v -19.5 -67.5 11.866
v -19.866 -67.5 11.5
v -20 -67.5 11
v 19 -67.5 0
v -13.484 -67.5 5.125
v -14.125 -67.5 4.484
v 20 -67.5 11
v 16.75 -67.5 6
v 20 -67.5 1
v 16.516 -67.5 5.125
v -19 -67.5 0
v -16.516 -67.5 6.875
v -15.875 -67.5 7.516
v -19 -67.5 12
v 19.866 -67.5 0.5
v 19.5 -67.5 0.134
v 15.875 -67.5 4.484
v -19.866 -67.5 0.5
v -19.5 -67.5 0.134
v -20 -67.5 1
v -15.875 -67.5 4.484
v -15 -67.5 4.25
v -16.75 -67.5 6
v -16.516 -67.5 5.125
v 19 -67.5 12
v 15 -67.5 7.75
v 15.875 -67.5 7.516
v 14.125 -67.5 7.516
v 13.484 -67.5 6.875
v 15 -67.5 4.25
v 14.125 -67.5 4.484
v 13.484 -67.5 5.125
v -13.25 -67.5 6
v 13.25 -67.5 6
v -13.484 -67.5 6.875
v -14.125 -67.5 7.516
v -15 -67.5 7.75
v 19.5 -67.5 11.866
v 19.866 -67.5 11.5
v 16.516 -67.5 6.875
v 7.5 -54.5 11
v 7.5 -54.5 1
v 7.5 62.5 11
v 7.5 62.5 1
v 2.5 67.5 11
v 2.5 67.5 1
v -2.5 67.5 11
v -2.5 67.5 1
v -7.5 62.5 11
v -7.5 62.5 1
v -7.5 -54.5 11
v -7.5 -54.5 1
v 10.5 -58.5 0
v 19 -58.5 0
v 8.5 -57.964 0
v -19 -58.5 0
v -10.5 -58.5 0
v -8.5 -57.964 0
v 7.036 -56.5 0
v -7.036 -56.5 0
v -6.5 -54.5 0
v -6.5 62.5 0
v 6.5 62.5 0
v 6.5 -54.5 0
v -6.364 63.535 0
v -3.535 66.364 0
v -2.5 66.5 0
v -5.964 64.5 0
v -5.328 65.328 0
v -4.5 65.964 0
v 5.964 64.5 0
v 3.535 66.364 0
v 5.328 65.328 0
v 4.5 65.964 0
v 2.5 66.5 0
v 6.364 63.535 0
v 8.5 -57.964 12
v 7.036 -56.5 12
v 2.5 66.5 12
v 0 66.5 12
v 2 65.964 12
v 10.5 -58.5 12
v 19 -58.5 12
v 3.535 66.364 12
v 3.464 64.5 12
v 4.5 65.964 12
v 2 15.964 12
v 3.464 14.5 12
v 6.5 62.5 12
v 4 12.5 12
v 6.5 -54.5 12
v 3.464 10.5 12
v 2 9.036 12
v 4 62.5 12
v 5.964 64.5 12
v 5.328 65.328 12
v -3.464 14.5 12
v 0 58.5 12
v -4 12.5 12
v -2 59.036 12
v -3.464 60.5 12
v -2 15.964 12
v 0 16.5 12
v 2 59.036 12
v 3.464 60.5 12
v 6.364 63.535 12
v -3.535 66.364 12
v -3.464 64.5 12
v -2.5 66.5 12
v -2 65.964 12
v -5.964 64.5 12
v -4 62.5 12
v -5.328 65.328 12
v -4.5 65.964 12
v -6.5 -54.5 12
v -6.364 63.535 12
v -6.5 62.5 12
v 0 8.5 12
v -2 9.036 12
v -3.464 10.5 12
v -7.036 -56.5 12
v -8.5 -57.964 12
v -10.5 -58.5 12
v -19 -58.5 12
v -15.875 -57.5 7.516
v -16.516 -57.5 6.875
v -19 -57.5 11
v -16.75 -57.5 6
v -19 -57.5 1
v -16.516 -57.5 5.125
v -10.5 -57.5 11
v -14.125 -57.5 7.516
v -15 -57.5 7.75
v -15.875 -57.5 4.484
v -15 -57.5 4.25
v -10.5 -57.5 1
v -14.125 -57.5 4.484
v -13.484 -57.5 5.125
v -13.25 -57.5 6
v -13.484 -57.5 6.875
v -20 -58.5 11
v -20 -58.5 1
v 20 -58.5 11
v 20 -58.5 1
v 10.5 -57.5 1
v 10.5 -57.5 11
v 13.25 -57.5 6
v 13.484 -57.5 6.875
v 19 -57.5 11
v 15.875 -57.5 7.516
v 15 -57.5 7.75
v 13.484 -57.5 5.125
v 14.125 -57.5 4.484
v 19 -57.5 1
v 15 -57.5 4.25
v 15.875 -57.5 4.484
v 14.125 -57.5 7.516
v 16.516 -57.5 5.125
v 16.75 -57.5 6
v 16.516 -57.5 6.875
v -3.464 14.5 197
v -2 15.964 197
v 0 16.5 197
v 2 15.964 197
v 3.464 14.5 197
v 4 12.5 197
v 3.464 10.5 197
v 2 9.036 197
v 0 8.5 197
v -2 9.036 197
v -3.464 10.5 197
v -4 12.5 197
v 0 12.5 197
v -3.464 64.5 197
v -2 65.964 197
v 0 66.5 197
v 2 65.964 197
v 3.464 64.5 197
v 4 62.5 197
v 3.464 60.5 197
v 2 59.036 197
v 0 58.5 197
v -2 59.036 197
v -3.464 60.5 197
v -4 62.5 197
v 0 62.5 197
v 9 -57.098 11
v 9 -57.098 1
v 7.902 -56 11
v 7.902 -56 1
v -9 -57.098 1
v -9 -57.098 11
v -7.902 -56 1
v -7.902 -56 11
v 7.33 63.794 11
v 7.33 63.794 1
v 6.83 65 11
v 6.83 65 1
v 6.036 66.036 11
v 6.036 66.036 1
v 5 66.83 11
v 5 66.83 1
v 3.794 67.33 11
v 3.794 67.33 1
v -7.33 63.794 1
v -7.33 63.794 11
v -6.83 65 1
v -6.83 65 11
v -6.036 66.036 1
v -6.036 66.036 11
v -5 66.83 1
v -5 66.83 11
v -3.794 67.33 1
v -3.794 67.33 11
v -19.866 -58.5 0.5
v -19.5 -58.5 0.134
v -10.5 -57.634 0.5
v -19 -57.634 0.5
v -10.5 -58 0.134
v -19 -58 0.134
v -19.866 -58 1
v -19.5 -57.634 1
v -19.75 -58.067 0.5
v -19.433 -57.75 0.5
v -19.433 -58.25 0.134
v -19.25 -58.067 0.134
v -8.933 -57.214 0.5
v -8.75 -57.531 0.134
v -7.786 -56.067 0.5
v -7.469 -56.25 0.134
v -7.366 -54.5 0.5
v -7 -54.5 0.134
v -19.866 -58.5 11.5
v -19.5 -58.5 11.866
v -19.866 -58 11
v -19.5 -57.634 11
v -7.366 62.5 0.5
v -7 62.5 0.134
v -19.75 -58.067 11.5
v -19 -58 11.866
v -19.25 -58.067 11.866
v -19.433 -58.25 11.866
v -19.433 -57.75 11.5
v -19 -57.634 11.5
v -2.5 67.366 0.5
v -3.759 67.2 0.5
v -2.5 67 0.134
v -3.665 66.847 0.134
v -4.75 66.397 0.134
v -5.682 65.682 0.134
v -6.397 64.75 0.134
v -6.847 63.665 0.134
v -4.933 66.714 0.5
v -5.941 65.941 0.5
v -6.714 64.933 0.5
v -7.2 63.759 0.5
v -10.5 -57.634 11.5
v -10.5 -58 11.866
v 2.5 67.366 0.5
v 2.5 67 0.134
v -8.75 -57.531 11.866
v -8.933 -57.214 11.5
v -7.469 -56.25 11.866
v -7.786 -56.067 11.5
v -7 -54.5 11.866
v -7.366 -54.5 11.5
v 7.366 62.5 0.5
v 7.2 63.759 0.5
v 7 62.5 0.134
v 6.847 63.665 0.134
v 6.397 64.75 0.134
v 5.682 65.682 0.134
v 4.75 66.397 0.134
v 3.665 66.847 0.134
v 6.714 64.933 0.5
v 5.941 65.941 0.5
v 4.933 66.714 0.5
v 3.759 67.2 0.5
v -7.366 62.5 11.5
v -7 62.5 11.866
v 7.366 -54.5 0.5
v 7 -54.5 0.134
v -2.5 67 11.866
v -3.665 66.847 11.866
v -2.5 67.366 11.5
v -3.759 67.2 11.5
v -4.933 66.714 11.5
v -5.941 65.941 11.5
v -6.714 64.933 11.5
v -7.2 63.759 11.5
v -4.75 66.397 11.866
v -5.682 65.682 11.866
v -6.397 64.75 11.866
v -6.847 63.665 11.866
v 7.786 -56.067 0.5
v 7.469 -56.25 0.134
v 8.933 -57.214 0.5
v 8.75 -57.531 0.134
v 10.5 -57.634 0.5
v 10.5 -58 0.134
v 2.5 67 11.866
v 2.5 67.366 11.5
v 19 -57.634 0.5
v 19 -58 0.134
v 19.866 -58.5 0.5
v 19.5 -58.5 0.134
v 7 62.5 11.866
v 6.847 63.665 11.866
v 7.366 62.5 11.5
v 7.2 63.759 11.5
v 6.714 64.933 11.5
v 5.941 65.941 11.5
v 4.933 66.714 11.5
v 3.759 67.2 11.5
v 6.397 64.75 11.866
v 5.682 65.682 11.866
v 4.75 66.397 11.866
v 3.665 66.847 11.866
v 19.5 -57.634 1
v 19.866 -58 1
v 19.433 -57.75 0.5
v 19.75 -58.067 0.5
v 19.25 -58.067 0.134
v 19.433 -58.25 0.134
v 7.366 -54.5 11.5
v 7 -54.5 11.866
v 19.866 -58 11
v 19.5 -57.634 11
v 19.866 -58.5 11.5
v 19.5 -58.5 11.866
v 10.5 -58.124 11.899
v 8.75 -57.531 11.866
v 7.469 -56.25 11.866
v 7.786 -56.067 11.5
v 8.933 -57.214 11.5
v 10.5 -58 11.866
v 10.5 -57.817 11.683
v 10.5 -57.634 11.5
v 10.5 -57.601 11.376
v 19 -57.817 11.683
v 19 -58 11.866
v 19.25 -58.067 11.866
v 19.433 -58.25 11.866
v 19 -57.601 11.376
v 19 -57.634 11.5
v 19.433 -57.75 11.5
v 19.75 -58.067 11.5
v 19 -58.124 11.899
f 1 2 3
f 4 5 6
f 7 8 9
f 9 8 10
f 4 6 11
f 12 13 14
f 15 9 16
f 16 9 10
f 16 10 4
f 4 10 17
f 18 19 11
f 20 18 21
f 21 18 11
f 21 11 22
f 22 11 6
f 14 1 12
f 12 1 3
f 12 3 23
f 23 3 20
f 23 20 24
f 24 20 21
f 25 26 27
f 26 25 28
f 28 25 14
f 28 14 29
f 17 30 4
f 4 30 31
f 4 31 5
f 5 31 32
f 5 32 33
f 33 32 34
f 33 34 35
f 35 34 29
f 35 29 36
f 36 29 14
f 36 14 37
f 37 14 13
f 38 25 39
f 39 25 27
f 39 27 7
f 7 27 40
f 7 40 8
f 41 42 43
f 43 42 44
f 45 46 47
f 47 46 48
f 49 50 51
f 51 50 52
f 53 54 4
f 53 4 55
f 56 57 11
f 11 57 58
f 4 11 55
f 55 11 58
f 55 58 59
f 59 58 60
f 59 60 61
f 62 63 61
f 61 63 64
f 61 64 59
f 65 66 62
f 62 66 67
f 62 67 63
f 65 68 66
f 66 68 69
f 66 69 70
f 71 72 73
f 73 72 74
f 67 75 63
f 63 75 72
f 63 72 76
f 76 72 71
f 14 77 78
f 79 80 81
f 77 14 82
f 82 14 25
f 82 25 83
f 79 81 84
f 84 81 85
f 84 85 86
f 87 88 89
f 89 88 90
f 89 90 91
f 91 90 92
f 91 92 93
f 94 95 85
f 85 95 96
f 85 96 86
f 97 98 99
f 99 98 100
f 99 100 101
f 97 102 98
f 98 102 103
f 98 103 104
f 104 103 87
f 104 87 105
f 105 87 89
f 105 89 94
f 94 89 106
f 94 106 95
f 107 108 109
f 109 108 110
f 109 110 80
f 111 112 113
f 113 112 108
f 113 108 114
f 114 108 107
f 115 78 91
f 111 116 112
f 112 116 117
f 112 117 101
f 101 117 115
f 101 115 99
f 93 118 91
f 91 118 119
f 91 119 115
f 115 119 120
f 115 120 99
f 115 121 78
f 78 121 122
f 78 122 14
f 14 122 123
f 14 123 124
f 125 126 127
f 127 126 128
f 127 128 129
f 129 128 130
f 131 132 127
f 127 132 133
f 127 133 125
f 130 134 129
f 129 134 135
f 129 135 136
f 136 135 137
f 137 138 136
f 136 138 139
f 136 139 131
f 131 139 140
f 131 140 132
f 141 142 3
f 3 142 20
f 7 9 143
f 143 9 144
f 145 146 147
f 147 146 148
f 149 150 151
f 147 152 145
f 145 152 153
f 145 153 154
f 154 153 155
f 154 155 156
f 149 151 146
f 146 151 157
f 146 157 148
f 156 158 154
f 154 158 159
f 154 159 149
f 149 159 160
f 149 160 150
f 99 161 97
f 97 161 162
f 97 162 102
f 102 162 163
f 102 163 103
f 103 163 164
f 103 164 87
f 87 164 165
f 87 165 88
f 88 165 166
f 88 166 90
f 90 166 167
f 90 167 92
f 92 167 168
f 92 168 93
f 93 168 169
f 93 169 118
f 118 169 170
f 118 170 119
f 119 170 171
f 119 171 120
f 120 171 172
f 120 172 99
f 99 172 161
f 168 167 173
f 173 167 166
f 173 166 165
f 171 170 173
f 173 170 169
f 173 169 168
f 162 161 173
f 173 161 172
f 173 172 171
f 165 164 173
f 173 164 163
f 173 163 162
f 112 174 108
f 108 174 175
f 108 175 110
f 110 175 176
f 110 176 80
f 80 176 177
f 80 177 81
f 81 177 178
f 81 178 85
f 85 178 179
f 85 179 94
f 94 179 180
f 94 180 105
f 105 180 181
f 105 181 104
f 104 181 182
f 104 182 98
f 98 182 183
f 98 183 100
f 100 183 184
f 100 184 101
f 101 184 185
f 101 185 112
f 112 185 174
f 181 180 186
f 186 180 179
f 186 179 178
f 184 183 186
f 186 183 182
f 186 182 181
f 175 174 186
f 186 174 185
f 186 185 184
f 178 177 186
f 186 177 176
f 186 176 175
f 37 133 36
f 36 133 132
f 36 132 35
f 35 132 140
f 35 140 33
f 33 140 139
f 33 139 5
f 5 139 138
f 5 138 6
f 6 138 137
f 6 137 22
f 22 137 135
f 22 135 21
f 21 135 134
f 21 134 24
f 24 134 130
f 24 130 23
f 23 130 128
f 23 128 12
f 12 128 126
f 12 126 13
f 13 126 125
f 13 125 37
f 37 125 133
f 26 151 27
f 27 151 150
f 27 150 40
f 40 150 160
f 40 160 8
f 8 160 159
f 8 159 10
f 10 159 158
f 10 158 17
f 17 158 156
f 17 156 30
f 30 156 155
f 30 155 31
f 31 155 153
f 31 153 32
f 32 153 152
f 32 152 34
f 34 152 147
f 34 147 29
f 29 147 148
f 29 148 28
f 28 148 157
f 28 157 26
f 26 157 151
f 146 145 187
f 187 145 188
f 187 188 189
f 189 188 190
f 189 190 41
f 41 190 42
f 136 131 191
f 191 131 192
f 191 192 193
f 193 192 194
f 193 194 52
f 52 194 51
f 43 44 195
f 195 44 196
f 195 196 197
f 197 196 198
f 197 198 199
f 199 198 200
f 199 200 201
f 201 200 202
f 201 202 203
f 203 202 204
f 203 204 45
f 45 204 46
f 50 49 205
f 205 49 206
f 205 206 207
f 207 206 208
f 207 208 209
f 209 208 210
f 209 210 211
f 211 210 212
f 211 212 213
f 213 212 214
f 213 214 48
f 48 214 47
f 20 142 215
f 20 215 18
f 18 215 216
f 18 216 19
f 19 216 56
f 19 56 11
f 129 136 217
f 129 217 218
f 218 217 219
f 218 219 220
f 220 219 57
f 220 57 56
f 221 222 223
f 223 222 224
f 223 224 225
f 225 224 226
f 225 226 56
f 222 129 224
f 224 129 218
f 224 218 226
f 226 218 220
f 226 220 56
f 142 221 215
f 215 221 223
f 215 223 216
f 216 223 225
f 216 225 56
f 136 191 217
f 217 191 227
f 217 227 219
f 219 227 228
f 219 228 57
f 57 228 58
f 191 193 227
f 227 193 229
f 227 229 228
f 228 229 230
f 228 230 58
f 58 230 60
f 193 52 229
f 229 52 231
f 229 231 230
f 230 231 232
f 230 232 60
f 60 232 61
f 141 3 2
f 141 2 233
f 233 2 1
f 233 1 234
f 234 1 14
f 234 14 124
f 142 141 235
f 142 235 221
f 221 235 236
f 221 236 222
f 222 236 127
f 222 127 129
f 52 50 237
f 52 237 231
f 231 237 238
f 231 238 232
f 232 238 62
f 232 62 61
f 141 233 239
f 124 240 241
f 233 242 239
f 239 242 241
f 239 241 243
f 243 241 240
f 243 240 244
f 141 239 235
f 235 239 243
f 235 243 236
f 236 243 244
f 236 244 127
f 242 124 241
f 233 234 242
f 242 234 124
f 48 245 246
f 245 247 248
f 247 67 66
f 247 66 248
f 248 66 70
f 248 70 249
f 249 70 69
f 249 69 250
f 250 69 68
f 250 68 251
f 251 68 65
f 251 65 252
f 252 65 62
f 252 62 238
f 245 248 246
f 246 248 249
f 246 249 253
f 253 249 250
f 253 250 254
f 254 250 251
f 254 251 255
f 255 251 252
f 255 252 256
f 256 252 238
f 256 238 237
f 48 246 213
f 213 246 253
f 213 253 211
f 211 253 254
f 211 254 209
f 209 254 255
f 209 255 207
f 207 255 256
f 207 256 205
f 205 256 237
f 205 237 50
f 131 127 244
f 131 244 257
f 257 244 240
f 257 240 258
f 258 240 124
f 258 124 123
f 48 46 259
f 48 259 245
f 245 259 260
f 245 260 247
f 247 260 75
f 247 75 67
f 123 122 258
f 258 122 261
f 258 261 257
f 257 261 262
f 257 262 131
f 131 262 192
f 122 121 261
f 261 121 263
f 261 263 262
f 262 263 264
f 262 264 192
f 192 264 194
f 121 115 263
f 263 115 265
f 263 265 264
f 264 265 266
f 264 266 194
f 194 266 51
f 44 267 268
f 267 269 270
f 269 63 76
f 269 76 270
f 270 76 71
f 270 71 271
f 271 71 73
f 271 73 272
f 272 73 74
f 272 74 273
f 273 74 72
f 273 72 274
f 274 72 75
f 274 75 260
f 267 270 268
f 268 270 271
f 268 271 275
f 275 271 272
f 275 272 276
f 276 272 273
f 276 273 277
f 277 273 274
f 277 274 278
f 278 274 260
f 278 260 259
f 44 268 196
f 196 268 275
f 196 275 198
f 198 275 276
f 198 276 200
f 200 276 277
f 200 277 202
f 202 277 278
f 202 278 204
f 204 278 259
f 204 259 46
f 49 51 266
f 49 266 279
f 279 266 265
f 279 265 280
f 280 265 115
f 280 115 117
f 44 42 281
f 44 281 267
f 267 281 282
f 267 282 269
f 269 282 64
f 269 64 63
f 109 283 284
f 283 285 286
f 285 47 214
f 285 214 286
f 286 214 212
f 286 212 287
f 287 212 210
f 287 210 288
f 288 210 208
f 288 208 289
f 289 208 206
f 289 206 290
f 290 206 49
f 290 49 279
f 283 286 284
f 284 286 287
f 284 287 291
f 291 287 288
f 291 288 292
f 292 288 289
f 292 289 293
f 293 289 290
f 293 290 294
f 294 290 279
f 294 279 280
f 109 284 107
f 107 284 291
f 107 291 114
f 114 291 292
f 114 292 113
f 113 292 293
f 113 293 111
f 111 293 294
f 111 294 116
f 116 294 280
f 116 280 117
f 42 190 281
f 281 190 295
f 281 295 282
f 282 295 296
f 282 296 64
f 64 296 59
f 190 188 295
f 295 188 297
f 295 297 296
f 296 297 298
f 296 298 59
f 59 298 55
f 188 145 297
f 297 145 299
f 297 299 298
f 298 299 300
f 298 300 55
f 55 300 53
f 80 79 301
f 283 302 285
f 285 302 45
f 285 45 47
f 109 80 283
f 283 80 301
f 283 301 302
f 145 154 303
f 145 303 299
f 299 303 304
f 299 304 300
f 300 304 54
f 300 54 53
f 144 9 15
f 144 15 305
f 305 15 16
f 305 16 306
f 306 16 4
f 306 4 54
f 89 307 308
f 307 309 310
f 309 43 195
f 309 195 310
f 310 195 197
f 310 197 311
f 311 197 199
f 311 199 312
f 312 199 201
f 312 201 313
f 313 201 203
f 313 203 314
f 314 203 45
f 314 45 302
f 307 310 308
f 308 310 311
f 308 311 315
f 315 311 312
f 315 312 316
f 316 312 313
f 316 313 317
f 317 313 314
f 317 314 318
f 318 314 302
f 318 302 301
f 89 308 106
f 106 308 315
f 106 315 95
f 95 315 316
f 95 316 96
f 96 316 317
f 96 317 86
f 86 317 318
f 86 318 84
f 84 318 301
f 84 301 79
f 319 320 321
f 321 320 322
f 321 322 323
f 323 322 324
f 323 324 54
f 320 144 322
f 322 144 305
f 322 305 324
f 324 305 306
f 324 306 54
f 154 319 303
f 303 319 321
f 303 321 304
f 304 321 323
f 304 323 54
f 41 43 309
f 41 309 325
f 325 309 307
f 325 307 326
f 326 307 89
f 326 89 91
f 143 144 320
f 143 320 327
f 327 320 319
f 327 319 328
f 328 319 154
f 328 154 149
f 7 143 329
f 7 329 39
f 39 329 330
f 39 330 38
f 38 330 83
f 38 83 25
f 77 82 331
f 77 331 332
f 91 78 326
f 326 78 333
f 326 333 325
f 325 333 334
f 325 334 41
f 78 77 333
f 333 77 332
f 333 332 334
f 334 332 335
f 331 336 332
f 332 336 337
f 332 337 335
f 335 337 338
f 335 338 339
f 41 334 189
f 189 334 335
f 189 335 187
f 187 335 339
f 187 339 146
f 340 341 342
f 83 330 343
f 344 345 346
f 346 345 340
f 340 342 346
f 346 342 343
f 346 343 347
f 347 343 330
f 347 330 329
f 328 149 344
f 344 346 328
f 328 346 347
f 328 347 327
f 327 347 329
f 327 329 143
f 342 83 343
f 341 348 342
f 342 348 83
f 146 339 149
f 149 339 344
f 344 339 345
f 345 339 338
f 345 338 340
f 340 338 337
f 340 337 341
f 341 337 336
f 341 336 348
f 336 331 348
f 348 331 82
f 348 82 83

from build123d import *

# Parameters (mm, degrees)
SKETCH_1_W          = 15
SKETCH_1_H          = 135
SKETCH_1_W_2        = 40
SKETCH_1_H_2        = 10
EXTRUDE_1_DEPTH     = 12
SKETCH_2_R          = 4
EXTRUDE_2_DEPTH     = 185
SKETCH_3_R          = 1.75
CUT_EXTRUDE_1_DEPTH = 235.166607355
FILLET_1_R          = 3
FILLET_2_R          = 5
FILLET_3_R          = 1


with BuildPart() as part:
    # ｽｹｯﾁ1 → ﾎﾞｽ - 押し出し1 (new body)
    with BuildSketch(Plane.XY):
        Rectangle(SKETCH_1_W, SKETCH_1_H)
        with Locations((0, -62.5)):
            Rectangle(SKETCH_1_W_2, SKETCH_1_H_2)
    extrude(amount=EXTRUDE_1_DEPTH)

    # ｽｹｯﾁ2 → ﾎﾞｽ - 押し出し2 (add)
    with BuildSketch(Plane.XY.offset(12)):
        with Locations(Location((0, 12.5, 0), (0, 0, 180))):
            Circle(SKETCH_2_R)
        with Locations(Location((0, 62.5, 0), (0, 0, 180))):
            Circle(SKETCH_2_R)
    extrude(amount=EXTRUDE_2_DEPTH)

    # ｽｹｯﾁ3 → ｶｯﾄ - 押し出し1 (cut, through all)
    with BuildSketch(Plane(origin=(0, -57.5, 0), x_dir=(1, 0, 0), z_dir=(0, 1, 0))):
        with Locations(Location((-15, -6, 0), (0, 0, 270))):
            Circle(SKETCH_3_R)
        with Locations(Location((15, -6, 0), (0, 0, 270))):
            Circle(SKETCH_3_R)
    extrude(amount=-CUT_EXTRUDE_1_DEPTH, mode=Mode.SUBTRACT)

    # ﾌｨﾚｯﾄ1
    fillet_1_edges = [part.edges().sort_by_distance(p)[0] for p in [
        (-7.5, -57.5, 6),
        (7.5, -57.5, 6),
    ]]
    fillet(fillet_1_edges, radius=FILLET_1_R)

    # ﾌｨﾚｯﾄ2
    fillet_2_edges = [part.edges().sort_by_distance(p)[0] for p in [
        (7.5, 67.5, 6),
        (-7.5, 67.5, 6),
    ]]
    fillet(fillet_2_edges, radius=FILLET_2_R)

    # ﾌｨﾚｯﾄ3
    fillet_3_edges = [part.edges().sort_by_distance(p)[0] for p in [
        (20, -57.5, 6),
        (-20, -57.5, 6),
        (-15.25, -57.5, 12),
        (20, -62.5, 12),
        (-20, -62.5, 12),
        (-15.25, -57.5, 0),
        (20, -62.5, 0),
        (-20, -62.5, 0),
        (7.5, 4, 12),
        (7.5, 4, 0),
        (15.25, -57.5, 12),
        (15.25, -57.5, 0),
        (-7.5, 4, 12),
        (-7.5, 4, 0),
        (8.378679656, -56.621320344, 0),
        (8.378679656, -56.621320344, 12),
        (-8.378679656, -56.621320344, 0),
        (-8.378679656, -56.621320344, 12),
        (0, 67.5, 0),
        (0, 67.5, 12),
        (-6.035533906, 66.035533906, 0),
        (6.035533906, 66.035533906, 0),
        (-6.035533906, 66.035533906, 12),
        (6.035533906, 66.035533906, 12),
    ]]
    fillet(fillet_3_edges, radius=FILLET_3_R - 0.0001)  # a hair under: the kernel refuses the full size


solid = part.part
